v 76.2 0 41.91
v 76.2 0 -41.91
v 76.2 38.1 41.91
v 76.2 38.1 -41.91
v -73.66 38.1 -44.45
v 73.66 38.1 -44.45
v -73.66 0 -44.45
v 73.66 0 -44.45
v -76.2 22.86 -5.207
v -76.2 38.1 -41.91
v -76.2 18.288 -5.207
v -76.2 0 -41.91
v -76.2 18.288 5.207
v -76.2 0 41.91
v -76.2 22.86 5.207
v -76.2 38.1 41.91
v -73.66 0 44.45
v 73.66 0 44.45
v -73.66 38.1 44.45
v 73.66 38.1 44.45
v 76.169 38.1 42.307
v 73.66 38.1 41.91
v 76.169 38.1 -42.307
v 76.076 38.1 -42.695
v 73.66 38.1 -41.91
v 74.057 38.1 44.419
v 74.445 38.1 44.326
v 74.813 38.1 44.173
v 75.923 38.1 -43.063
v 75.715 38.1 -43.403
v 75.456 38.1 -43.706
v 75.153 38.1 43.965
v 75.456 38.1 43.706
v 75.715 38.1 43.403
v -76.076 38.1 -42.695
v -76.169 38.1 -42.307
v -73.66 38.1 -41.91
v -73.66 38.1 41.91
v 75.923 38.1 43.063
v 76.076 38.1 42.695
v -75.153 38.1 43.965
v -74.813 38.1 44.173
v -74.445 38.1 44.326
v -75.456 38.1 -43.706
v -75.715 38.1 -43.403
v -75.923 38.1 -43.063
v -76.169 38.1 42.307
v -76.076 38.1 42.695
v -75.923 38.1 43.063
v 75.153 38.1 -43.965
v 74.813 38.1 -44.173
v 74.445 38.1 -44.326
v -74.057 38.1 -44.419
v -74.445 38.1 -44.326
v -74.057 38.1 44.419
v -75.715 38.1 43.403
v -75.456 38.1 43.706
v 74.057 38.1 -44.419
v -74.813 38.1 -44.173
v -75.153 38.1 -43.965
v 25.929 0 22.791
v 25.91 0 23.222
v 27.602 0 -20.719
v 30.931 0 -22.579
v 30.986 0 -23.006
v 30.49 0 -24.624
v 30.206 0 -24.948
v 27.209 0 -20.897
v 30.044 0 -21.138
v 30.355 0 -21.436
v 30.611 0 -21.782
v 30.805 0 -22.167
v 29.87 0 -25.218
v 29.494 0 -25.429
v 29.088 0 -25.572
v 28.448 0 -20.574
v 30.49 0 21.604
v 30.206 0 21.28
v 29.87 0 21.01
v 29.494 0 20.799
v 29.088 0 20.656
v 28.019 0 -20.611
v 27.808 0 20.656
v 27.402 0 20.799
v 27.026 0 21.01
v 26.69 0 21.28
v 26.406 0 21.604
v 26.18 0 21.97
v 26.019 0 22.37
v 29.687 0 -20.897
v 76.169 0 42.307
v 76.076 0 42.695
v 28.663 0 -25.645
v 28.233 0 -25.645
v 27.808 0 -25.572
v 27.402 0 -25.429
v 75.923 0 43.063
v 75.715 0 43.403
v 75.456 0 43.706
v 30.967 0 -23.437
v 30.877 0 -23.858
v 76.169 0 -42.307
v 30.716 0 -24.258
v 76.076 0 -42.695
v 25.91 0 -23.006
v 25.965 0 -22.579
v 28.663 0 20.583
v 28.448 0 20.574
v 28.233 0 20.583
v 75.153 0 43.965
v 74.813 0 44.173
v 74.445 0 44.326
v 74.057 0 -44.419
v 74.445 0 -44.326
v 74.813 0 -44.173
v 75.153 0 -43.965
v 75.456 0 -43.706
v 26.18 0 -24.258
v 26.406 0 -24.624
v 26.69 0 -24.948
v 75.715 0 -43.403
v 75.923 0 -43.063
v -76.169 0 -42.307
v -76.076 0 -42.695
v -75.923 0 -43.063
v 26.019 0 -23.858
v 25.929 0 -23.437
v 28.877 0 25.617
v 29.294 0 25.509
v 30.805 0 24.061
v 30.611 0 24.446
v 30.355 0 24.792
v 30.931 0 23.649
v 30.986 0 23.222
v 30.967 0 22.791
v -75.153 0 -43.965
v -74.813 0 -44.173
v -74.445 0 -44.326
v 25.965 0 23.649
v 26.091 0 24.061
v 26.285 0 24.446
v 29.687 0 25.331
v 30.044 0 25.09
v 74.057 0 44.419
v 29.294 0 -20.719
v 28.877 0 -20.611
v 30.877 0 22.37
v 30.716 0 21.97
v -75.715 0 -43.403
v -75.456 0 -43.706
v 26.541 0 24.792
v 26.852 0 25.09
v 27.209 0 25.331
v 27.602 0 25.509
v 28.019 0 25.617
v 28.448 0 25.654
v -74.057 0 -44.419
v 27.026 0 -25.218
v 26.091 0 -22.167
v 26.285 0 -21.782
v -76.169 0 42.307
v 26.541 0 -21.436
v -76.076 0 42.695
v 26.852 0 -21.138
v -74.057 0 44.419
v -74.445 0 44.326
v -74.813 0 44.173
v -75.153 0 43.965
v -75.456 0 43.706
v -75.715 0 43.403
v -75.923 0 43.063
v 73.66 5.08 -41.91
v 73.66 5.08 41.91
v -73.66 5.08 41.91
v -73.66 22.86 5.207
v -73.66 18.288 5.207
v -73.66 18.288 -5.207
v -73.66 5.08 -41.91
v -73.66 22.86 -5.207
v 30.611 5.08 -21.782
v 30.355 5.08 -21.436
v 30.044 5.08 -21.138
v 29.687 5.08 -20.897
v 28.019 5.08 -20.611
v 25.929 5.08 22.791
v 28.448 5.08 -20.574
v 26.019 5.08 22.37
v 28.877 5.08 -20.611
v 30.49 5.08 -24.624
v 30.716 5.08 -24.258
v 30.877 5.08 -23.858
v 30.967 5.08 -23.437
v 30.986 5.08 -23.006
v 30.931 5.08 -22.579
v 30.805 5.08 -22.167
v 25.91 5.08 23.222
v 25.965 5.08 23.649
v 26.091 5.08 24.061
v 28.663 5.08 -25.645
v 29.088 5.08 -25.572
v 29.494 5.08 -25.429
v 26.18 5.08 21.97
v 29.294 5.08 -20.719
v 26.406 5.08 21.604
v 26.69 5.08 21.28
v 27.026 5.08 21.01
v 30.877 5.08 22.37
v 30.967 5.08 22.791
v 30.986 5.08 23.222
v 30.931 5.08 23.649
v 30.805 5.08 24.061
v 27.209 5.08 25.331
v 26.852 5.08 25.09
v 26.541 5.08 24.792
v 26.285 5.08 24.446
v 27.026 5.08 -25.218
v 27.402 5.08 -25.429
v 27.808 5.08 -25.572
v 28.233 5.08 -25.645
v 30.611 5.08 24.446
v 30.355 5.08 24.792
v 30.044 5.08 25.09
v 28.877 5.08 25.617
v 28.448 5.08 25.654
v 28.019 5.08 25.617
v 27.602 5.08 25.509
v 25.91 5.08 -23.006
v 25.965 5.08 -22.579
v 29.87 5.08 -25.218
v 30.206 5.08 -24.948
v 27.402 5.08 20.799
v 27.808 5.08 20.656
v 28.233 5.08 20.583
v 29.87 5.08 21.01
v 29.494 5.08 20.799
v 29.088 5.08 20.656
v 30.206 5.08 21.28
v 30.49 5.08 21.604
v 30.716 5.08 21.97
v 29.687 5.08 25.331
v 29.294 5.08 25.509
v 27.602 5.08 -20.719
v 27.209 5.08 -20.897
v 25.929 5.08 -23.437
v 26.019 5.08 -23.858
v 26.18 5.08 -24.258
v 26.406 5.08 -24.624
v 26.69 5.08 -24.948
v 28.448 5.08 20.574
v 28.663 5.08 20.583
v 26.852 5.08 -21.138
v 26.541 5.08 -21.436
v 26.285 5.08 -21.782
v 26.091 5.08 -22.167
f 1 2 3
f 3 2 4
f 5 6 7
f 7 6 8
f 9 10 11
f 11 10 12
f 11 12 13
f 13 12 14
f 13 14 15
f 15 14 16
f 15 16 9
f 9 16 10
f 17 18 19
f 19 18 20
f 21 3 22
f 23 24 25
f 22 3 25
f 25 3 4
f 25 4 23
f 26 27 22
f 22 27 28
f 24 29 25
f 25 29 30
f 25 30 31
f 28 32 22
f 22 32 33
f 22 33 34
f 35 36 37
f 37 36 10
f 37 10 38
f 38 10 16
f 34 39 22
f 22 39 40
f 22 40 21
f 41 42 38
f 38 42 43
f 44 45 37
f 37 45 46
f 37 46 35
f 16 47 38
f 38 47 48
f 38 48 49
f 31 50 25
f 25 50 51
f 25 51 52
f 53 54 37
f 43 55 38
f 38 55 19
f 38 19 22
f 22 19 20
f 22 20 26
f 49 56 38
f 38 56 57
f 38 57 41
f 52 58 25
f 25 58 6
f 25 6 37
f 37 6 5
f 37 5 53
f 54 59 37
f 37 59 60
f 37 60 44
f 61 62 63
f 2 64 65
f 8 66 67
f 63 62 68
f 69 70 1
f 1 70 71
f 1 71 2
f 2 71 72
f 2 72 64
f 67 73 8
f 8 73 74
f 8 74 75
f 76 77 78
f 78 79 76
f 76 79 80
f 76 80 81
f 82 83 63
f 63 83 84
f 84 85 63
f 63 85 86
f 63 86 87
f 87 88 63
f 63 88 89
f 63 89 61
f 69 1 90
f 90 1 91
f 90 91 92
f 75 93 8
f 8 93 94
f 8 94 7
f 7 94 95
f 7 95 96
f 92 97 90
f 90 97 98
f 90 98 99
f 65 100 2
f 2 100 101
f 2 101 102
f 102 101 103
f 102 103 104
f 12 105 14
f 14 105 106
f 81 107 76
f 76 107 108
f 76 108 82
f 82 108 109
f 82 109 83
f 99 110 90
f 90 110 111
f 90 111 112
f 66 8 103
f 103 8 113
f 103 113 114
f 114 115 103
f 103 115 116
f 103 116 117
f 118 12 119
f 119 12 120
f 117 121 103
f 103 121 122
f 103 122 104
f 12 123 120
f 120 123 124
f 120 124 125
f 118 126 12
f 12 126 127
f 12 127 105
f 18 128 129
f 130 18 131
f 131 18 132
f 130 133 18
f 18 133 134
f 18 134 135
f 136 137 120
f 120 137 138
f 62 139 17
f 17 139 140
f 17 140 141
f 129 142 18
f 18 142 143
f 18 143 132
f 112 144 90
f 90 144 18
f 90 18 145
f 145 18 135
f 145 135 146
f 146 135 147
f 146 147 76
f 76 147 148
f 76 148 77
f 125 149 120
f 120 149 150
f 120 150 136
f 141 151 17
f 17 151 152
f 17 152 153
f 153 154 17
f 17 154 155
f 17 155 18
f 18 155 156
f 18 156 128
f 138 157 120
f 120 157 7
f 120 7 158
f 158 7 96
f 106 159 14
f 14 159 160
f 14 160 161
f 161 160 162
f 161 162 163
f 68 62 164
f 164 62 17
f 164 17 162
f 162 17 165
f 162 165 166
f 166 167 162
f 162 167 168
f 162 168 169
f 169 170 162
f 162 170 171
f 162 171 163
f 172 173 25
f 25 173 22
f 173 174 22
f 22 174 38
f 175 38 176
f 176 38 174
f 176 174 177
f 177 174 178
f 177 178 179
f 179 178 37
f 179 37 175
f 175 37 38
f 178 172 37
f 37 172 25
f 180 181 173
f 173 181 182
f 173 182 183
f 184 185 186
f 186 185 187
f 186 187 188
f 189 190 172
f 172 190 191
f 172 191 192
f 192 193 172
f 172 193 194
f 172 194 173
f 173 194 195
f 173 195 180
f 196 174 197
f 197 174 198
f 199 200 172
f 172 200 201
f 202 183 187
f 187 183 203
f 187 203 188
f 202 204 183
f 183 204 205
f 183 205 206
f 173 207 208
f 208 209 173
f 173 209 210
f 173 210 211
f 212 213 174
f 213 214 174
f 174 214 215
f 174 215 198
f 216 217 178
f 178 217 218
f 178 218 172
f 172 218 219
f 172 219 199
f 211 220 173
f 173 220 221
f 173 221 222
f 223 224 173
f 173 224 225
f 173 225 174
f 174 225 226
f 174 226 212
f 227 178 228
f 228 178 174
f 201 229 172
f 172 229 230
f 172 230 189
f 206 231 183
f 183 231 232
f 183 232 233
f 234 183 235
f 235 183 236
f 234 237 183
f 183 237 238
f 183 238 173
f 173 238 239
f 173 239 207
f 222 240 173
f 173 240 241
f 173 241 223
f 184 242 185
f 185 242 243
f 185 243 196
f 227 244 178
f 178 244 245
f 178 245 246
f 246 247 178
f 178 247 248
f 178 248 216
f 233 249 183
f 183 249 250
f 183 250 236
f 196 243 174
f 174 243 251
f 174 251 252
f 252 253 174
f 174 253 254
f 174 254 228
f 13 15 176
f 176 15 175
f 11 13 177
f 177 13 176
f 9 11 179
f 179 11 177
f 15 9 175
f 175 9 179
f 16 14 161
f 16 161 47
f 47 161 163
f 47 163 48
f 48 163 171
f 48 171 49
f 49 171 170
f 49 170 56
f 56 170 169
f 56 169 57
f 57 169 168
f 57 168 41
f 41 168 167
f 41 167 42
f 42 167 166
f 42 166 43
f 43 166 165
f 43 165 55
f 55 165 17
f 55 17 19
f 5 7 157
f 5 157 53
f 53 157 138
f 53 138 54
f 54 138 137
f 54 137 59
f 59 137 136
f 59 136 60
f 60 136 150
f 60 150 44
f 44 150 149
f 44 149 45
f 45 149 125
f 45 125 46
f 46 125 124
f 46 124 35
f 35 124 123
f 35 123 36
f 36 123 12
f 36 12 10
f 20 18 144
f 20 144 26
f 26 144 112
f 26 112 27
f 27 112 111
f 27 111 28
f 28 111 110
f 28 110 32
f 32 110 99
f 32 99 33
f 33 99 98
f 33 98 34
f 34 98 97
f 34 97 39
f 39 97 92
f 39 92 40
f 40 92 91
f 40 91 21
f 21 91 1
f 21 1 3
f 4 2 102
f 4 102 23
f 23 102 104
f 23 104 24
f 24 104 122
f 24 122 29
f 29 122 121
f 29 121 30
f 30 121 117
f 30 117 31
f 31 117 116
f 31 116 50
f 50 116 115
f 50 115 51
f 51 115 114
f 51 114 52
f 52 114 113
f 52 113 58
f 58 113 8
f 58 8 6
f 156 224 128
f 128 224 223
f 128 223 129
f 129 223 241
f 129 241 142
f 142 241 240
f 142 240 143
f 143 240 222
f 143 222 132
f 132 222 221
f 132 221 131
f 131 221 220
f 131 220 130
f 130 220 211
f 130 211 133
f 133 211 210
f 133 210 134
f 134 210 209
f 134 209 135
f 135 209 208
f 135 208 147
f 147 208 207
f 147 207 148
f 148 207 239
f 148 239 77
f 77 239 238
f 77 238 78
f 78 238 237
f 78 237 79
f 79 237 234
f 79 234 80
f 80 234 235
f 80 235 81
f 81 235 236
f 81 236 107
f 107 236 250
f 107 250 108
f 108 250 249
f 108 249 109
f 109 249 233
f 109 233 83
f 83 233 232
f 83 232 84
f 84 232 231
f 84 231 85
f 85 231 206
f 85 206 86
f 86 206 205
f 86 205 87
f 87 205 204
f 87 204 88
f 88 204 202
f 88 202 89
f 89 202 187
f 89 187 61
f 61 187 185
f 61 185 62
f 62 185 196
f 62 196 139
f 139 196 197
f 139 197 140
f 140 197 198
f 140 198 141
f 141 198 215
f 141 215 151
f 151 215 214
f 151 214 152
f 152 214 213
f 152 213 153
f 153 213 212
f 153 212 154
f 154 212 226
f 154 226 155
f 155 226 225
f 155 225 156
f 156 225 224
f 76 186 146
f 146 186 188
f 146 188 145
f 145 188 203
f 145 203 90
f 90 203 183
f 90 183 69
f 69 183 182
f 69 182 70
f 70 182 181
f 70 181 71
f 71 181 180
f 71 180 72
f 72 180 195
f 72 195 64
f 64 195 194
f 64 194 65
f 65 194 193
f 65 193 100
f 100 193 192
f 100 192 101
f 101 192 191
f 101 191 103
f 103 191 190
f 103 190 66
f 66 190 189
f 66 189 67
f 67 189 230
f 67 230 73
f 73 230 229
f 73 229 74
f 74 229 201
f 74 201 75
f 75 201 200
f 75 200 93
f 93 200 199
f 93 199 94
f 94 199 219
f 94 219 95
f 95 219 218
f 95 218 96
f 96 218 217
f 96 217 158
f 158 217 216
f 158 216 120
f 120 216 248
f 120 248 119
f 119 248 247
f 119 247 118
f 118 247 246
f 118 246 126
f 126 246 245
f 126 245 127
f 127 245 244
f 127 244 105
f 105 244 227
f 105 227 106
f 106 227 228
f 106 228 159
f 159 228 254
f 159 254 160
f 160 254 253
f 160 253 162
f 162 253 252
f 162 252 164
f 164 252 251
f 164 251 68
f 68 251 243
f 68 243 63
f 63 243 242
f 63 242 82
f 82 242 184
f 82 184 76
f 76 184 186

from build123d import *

# Parameters (mm, degrees)
SKETCH1_W           = 152.4
SKETCH1_H           = 88.9
BOSS_EXTRUDE1_DEPTH = 38.1
SKETCH2_W           = 147.32
SKETCH2_H           = 83.82
CUT_EXTRUDE1_DEPTH  = 33.02
SKETCH5_W           = 10.414
SKETCH5_H           = 4.572
CUT_EXTRUDE3_DEPTH  = 2.54
FILLET1_R           = 2.54
SKETCH6_R           = 2.54
CUT_EXTRUDE4_DEPTH  = 95.194282735


with BuildPart() as part:
    # Sketch1 → Boss-Extrude1 (new body)
    with BuildSketch(Plane(origin=(0, 0, 0), x_dir=(1, 0, 0), z_dir=(0, 1, 0))):
        Rectangle(SKETCH1_W, SKETCH1_H)
    extrude(amount=BOSS_EXTRUDE1_DEPTH)

    # Sketch2 → Cut-Extrude1 (cut)
    with BuildSketch(Plane(origin=(0, 38.1, 0), x_dir=(1, 0, 0), z_dir=(0, 1, 0))):
        Rectangle(SKETCH2_W, SKETCH2_H)
    extrude(amount=-CUT_EXTRUDE1_DEPTH, mode=Mode.SUBTRACT)

    # Sketch5 → Cut-Extrude3 (cut)
    with BuildSketch(Plane.ZY.offset(76.2)):
        with Locations((0, 20.574)):
            Rectangle(SKETCH5_W, SKETCH5_H)
    extrude(amount=-CUT_EXTRUDE3_DEPTH, mode=Mode.SUBTRACT)

    # Fillet1
    fillet1_edges = [part.edges().sort_by_distance(p)[0] for p in [
        (76.2, 19.05, 44.45),
        (-76.2, 19.05, 44.45),
        (-76.2, 19.05, -44.45),
        (76.2, 19.05, -44.45),
    ]]
    fillet(fillet1_edges, radius=FILLET1_R)

    # Sketch6 → Cut-Extrude4 (cut, through all)
    with BuildSketch(Plane(origin=(0, 5.08, 0), x_dir=(1, 0, 0), z_dir=(0, 1, 0))):
        with Locations(Location((28.448, 23.114, 0), (0, 0, 270))):
            Circle(SKETCH6_R)
        with Locations(Location((28.448, -23.114, 0), (0, 0, 90))):
            Circle(SKETCH6_R)
    extrude(amount=-CUT_EXTRUDE4_DEPTH, mode=Mode.SUBTRACT)


solid = part.part
